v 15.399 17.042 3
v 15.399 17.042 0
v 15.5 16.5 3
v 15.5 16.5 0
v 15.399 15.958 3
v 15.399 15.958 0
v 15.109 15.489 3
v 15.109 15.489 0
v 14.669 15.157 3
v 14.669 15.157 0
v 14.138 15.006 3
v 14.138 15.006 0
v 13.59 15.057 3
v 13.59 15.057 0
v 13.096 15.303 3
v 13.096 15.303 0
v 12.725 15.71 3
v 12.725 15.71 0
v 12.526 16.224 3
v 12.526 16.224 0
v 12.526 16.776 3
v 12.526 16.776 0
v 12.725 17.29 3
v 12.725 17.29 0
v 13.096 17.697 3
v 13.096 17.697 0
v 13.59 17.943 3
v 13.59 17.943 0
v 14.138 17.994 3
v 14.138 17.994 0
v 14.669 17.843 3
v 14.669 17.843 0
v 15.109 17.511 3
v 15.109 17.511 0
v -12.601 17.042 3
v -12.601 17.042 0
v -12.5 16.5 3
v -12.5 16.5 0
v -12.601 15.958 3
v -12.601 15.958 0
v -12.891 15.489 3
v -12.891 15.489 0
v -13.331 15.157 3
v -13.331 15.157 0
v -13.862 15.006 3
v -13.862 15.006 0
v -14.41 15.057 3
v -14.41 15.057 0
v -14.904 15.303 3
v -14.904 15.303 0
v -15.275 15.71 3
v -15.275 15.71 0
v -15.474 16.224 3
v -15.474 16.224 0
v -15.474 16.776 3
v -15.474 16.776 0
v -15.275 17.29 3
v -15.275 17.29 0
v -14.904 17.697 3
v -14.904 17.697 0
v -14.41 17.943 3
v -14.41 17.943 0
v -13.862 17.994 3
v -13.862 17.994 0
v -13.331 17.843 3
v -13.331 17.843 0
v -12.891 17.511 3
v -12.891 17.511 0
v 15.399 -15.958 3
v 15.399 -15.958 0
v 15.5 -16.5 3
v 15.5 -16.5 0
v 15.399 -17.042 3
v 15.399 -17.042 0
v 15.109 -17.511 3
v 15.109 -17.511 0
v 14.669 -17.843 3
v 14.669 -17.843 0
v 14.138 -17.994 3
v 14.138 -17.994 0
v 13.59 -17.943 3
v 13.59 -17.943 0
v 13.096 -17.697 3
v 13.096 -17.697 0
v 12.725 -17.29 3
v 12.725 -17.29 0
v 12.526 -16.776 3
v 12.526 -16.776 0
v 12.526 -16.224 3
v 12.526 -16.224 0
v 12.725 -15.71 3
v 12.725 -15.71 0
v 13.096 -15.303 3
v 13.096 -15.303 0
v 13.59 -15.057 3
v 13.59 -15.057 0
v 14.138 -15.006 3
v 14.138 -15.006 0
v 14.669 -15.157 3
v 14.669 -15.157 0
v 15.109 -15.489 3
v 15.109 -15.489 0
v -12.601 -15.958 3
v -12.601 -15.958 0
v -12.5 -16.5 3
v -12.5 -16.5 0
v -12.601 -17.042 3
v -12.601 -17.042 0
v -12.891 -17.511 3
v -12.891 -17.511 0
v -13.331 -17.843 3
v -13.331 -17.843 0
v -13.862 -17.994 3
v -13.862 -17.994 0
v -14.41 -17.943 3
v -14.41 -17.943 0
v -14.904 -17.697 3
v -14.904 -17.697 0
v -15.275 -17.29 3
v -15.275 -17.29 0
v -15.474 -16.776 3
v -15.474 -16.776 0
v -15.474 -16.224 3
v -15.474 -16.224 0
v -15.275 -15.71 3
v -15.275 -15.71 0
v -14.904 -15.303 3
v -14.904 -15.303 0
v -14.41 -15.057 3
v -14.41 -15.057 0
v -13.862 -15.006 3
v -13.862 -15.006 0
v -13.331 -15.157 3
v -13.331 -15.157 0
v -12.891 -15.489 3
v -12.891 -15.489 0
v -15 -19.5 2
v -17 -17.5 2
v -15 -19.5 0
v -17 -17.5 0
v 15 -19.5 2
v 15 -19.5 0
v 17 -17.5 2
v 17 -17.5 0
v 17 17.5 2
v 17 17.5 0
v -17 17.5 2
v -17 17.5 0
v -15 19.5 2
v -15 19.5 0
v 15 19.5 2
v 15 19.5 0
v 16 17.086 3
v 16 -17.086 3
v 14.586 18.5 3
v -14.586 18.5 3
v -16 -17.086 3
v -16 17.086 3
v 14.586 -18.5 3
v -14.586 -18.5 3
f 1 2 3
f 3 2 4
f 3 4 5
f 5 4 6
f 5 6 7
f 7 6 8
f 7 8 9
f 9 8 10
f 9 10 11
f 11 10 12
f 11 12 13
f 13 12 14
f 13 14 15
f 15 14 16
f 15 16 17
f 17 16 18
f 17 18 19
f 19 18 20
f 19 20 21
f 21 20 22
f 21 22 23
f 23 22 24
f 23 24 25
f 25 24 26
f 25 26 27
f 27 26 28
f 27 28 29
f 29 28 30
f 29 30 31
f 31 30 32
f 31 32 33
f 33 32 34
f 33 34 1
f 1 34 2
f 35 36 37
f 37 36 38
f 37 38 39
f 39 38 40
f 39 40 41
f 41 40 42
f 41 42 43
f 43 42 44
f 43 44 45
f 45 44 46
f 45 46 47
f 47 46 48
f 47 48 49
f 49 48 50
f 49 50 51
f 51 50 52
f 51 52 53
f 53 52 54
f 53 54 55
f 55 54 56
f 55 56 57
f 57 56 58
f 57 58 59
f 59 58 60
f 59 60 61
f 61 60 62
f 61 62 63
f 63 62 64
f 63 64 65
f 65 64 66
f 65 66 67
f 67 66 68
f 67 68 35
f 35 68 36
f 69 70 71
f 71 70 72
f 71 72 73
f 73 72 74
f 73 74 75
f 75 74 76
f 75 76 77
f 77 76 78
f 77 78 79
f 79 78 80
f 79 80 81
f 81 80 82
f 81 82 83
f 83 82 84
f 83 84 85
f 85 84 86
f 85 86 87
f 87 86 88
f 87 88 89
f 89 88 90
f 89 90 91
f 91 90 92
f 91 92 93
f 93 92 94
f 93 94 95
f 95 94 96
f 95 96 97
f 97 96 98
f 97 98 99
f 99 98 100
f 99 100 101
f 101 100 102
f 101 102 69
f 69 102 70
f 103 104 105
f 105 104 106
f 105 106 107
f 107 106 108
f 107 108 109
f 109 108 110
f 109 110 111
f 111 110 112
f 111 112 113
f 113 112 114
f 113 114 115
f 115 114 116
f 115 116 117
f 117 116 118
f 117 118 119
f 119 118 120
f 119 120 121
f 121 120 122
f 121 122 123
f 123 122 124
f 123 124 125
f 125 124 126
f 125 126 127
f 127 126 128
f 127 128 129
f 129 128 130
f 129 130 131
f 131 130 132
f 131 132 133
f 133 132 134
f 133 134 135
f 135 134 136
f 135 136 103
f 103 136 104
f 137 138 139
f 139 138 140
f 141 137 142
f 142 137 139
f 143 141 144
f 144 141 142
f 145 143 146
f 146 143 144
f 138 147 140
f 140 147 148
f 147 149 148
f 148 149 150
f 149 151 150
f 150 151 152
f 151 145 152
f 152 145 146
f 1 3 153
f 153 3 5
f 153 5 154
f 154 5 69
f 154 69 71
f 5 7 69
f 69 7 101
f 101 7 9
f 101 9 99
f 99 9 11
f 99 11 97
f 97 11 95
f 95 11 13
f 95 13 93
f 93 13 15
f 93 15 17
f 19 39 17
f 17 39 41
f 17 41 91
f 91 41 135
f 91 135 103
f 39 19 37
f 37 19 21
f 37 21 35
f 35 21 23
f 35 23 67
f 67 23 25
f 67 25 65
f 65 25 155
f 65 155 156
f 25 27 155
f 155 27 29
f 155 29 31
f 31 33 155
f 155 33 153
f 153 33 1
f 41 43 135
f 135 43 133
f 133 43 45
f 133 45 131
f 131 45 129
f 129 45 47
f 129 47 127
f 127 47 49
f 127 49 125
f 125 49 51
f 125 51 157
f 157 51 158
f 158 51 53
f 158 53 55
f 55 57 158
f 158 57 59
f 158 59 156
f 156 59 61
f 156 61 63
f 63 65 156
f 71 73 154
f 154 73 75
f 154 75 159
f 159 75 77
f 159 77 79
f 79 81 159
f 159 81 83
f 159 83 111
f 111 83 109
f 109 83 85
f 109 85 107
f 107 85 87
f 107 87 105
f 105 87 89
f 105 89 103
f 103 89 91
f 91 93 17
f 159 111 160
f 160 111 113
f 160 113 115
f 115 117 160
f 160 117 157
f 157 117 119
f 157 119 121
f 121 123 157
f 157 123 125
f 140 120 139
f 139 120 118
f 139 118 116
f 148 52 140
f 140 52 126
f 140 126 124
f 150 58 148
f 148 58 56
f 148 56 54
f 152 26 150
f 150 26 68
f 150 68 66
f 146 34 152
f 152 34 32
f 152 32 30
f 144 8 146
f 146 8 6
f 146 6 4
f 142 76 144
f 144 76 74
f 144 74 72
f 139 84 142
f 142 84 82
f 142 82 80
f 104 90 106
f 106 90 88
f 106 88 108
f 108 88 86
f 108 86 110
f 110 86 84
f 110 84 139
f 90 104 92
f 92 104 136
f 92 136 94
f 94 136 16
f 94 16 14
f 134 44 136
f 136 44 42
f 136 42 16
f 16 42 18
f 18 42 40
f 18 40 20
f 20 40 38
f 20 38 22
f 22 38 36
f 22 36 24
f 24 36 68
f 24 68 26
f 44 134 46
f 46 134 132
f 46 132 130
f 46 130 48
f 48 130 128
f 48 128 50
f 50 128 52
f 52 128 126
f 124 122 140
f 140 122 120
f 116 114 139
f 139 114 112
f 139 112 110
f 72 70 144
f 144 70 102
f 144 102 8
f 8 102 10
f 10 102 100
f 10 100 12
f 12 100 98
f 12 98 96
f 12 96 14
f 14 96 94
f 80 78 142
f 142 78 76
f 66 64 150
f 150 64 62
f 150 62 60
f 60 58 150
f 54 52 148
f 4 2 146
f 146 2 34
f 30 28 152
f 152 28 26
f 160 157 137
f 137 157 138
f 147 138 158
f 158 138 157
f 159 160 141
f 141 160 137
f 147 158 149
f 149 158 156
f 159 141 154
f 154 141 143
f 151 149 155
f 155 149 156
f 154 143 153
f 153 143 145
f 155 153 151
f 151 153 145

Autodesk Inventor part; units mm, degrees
ref_plane "YZ Plane" through (0, 0, 0) normal (1, 0, 0) x (0, 1, 0)
ref_plane "XZ Plane" through (0, 0, 0) normal (0, 1, 0) x (-1, 0, 0)
ref_plane "XY Plane" through (0, 0, 0) normal (0, 0, 1) x (1, 0, 0)
sketch "Sketch1" plane through (0, 0, 0) normal (0, 0, 1) x (1, 0, 0)
  circle A0 centre (-14, 16.5) radius 1.5
  circle A1 centre (14, 16.5) radius 1.5
  line L0 (-12, 0) -> (-12, 14.5)
  line L1 (-12, 14.5) -> (12, 14.5)
  line L2 (12, 14.5) -> (12, 0)
  line L3 (12, 0) -> (17, 0)
  line L4 (17, 0) -> (17, 17.5)
  line L5 (15, 19.5) -> (17, 17.5)
  line L6 (-15, 19.5) -> (15, 19.5)
  line L7 (-17, 17.5) -> (-15, 19.5)
  line L8 (-17, 0) -> (-17, 17.5)
  line L9 (-17, 0) -> (-12, 0)
  line L10 (0, 14.5) -> (0, 0)
  circle A2 centre (-14, -16.5) radius 1.5
  circle A3 centre (14, -16.5) radius 1.5
  line L11 (-12, 0) -> (-12, -14.5)
  line L12 (-12, -14.5) -> (12, -14.5)
  line L13 (12, -14.5) -> (12, 0)
  line L14 (17, 0) -> (17, -17.5)
  line L15 (15, -19.5) -> (17, -17.5)
  line L16 (-15, -19.5) -> (15, -19.5)
  line L17 (-17, -17.5) -> (-15, -19.5)
  line L18 (-17, 0) -> (-17, -17.5)
  line L19 (0, -14.5) -> (0, 0)
  point P0 (0, 0)
  point P1 (0, 12)
  point P2 (0, -12)
extrude "Extrusion1" add sketch "Sketch1" along normal blind 3
chamfer "Chamfer1" distance 1 angle 45 8 edges at (-16, -18.5, 3) (-16, 18.5, 3) (16, 18.5, 3) (16, -18.5, 3) (0, -19.5, 3) (0, 19.5, 3) (-17, 8.75, 3) (17, 8.75, 3)
properties part number "manta ray handle cap"
